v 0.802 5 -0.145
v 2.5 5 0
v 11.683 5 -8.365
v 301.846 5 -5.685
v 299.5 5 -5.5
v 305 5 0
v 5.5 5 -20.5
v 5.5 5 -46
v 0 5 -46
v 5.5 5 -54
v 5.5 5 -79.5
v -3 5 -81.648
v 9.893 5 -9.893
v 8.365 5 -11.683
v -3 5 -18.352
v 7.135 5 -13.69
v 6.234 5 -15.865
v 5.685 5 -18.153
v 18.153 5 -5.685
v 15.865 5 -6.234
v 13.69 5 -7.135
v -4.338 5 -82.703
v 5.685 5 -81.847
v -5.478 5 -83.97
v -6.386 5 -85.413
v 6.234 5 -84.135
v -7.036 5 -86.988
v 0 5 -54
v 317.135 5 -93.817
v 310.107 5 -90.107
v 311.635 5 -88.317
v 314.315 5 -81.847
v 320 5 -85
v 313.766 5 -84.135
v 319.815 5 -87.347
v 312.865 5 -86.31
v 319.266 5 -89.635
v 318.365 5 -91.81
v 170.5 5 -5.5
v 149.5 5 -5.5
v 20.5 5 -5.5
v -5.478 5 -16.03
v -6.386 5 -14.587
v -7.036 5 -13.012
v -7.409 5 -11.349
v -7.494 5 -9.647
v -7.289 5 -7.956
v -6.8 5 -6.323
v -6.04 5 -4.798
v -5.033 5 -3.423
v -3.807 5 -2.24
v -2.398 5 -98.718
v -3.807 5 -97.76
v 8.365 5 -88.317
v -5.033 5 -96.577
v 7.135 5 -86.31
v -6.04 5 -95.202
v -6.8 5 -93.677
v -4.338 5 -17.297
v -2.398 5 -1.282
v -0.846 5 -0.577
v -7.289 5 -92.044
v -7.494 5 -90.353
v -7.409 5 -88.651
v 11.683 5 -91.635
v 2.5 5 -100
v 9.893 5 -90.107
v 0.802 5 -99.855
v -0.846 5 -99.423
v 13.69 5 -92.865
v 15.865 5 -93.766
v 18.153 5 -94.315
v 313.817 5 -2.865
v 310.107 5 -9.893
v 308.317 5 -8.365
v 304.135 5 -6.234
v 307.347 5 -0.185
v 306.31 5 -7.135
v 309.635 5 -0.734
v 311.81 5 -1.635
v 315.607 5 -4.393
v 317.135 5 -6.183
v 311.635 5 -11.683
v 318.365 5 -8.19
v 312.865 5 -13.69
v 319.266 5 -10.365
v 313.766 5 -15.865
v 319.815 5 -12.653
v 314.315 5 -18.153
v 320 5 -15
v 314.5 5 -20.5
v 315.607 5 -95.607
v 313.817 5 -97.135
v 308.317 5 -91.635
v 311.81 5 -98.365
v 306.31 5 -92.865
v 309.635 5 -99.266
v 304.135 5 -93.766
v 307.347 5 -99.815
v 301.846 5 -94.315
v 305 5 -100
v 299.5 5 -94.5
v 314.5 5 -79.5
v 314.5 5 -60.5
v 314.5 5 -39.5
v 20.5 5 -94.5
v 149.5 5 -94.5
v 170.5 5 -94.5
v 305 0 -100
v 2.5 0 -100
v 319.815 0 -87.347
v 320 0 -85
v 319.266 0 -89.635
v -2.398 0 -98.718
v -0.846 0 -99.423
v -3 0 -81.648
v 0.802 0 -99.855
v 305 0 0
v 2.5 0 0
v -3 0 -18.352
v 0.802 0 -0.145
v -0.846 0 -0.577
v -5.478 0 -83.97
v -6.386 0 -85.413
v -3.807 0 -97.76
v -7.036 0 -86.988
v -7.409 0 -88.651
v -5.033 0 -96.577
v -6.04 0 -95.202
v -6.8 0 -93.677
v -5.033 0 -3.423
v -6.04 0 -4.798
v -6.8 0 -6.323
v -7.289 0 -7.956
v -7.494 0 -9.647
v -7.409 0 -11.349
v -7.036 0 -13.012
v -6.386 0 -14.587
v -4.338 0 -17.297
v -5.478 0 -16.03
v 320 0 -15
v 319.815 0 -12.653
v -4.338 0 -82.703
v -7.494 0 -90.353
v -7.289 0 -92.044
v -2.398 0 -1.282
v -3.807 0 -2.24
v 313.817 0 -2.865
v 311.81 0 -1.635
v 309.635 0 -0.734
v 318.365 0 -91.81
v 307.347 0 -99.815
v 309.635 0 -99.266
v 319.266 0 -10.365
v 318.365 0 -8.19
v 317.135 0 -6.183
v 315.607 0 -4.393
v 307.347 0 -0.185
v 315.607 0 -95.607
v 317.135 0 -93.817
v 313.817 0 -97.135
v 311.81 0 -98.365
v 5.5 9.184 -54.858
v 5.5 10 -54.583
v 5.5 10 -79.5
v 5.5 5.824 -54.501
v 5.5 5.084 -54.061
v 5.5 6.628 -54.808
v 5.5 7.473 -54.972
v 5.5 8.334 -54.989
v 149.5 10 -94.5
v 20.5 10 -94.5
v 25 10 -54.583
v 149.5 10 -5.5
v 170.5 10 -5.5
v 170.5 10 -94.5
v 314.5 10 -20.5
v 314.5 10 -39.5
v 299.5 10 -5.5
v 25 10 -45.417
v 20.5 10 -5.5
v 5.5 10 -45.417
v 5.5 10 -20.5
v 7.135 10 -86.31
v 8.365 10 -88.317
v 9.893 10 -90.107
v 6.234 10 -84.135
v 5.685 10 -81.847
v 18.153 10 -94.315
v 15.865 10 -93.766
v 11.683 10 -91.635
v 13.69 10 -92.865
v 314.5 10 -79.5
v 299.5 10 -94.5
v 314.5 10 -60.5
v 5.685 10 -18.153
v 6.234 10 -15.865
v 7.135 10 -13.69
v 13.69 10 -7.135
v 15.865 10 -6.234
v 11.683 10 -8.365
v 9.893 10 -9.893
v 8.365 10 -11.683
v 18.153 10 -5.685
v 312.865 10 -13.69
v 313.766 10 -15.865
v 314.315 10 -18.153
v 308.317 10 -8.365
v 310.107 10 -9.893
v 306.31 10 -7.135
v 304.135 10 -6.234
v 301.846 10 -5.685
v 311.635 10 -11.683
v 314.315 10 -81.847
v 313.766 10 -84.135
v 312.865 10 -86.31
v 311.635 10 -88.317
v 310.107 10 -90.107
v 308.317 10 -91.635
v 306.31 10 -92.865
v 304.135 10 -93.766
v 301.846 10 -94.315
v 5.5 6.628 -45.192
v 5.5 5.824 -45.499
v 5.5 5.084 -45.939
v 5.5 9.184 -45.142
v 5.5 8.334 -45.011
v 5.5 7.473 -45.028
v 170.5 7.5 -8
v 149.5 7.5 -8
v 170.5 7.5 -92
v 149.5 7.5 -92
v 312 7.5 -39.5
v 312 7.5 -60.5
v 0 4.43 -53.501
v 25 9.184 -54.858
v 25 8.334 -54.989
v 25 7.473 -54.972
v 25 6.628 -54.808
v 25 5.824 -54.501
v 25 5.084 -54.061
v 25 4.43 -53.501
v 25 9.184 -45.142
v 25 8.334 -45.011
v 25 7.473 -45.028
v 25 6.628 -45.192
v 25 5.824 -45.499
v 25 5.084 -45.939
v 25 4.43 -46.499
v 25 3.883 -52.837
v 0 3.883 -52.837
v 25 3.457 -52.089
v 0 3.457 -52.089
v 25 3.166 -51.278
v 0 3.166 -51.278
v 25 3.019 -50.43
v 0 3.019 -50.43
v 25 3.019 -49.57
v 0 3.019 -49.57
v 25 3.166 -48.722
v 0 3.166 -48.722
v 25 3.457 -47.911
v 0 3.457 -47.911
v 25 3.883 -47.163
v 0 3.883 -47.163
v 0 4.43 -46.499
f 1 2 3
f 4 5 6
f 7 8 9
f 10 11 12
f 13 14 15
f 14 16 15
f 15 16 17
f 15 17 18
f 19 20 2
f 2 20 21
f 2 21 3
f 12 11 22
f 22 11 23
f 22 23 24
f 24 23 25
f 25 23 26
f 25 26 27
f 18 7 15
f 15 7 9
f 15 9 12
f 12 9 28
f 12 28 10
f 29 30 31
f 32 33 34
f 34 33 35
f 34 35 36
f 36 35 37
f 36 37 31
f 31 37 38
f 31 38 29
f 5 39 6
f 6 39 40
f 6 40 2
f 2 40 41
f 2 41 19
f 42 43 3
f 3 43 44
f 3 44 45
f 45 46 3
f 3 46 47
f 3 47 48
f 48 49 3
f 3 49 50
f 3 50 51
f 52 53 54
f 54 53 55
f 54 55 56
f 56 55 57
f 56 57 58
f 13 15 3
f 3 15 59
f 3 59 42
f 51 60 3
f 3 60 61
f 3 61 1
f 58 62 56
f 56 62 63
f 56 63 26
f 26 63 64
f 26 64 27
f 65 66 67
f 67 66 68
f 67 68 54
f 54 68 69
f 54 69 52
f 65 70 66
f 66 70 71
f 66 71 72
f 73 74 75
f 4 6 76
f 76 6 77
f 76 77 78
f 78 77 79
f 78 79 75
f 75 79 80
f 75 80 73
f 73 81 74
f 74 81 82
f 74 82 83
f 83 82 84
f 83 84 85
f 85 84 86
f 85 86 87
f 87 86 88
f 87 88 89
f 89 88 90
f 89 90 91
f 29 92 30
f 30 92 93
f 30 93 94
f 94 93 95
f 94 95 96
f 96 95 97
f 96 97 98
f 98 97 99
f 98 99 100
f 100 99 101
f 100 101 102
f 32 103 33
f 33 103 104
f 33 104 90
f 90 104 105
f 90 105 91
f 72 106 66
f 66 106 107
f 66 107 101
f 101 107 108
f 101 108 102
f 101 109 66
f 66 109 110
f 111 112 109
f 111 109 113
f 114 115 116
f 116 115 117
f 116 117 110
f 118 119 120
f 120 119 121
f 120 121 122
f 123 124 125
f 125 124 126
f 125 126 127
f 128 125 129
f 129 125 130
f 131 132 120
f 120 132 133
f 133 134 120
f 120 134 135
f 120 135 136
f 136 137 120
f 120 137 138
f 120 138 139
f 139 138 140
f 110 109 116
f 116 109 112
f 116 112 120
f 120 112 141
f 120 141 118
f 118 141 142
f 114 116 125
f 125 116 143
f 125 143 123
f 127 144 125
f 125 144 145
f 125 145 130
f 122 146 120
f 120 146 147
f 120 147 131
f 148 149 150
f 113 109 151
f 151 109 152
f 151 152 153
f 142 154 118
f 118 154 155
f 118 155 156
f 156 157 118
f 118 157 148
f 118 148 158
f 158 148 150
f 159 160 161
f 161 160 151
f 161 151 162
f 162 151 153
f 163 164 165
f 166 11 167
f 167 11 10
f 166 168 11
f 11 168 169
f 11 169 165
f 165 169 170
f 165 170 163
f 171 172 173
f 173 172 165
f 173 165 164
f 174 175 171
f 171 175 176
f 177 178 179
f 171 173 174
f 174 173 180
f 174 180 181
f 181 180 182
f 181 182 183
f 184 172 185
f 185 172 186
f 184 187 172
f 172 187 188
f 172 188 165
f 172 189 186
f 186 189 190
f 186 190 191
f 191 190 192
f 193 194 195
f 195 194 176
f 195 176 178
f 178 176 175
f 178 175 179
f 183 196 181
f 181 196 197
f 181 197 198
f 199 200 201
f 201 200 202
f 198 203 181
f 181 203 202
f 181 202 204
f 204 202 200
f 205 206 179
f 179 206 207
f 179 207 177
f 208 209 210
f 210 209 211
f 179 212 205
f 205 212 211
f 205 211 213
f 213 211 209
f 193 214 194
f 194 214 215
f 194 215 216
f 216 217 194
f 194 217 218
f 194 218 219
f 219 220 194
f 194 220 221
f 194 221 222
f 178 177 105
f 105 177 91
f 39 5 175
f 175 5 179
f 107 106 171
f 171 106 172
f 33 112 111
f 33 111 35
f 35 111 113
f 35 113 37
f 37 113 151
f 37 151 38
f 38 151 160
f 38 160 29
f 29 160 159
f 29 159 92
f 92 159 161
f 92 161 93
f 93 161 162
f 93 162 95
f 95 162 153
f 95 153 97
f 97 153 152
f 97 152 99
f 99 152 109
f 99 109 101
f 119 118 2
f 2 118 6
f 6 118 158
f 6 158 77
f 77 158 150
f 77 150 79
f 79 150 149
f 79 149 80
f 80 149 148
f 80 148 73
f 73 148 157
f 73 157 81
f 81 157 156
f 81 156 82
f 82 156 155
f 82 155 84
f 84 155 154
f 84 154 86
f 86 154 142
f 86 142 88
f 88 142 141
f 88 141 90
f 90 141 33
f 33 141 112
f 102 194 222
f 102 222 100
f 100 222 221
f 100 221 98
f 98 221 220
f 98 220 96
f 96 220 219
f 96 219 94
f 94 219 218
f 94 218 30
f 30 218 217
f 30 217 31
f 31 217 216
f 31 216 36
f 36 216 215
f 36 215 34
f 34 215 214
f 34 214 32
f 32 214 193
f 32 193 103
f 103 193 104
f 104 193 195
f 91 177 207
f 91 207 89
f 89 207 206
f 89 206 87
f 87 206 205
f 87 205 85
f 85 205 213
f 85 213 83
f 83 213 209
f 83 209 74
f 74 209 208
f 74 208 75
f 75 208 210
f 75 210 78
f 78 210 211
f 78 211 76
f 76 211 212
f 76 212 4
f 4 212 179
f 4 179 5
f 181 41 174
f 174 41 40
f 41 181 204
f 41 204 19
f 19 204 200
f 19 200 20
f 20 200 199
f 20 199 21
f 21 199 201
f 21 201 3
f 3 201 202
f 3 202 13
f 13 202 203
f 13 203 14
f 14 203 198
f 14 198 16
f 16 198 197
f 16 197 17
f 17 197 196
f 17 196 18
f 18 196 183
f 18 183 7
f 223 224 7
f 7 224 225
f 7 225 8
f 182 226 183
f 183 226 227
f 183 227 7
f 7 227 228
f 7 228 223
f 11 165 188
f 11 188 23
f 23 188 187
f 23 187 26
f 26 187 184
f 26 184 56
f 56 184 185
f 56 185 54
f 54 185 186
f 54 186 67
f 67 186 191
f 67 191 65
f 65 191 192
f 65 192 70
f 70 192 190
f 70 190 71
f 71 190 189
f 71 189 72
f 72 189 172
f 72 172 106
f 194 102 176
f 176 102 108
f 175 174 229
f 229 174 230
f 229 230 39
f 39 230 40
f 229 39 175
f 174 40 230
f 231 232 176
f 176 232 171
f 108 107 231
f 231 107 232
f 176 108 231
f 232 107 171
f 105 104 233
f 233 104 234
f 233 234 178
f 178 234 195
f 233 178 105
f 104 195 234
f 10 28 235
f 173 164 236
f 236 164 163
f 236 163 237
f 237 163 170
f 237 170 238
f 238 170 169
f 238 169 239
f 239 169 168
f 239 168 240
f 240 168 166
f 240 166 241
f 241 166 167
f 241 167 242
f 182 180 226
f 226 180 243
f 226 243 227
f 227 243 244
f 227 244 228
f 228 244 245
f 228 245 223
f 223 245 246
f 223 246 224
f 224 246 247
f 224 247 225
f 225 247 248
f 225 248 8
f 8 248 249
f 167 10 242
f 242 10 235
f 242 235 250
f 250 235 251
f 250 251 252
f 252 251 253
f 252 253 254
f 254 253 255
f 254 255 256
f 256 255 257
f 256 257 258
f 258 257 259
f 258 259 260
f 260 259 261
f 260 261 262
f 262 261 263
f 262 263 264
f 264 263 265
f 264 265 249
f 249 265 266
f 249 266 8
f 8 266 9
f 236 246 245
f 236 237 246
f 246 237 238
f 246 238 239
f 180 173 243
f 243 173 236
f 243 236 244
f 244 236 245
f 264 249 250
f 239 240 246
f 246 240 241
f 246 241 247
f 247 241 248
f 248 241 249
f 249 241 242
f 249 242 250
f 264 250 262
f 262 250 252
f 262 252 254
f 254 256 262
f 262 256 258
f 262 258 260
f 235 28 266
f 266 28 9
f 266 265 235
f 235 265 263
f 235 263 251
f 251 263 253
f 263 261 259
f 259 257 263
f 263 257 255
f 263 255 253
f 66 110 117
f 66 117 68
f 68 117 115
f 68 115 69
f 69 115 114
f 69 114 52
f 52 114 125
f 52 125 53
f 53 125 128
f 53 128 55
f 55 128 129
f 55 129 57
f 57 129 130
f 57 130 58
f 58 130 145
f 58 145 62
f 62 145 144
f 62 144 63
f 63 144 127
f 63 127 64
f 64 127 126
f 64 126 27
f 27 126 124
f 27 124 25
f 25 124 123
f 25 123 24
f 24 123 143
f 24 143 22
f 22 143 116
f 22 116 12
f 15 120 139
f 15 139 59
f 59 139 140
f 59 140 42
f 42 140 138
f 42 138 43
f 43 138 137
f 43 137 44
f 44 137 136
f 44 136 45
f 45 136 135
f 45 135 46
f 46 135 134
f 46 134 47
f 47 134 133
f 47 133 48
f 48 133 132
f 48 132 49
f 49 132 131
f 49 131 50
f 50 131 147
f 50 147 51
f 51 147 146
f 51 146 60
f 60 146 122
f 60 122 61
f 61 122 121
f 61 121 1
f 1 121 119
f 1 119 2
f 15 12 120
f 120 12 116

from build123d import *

# Parameters (mm, degrees)
BOSS_EXTRUDE1_DEPTH     = 10
CUT_EXTRUDE7_START      = -5
CUT_EXTRUDE7_DEPTH      = 5
CUT_EXTRUDE8_DEPTH      = 10.5
CUT_EXTRUDE8_DEPTH_BACK = 10.5
CUT_EXTRUDE9_DEPTH      = 10.5
CUT_EXTRUDE9_DEPTH_BACK = 10.5
SKETCH14_R              = 5
CUT_EXTRUDE10_DEPTH     = 25
BOSS_EXTRUDE2_DEPTH     = 5
CUT_EXTRUDE12_DEPTH     = 5


with BuildPart() as part:
    # Sketch8 → Boss-Extrude1 (new body)
    with BuildSketch(Plane(origin=(0, 0, 0), x_dir=(1, 0, 0), z_dir=(0, 1, 0))):
        with BuildLine():
            Line((15, 0), (305, 0))
            ThreePointArc((305, 0), (315.606601718, 4.393398282), (320, 15))
            Line((320, 15), (320, 85))
            ThreePointArc((320, 85), (315.606601718, 95.606601718), (305, 100))
            Line((305, 100), (15, 100))
            ThreePointArc((15, 100), (4.393398282, 95.606601718), (0, 85))
            Line((0, 85), (0, 15))
            ThreePointArc((0, 15), (4.393398282, 4.393398282), (15, 0))
        make_face()
    extrude(amount=BOSS_EXTRUDE1_DEPTH)

    # Sketch9 → Cut-Extrude7 (cut)
    with BuildSketch(Plane(origin=(0, 10, 0), x_dir=(1, 0, 0), z_dir=(0, 1, 0)).offset(CUT_EXTRUDE7_START)):
        with BuildLine():
            Line((15, 0), (305, 0))
            ThreePointArc((305, 0), (315.606601718, 4.393398282), (320, 15))
            Line((320, 15), (320, 85))
            ThreePointArc((320, 85), (315.606601718, 95.606601718), (305, 100))
            Line((305, 100), (15, 100))
            ThreePointArc((15, 100), (4.393398282, 95.606601718), (0, 85))
            Line((0, 85), (0, 15))
            ThreePointArc((0, 15), (4.393398282, 4.393398282), (15, 0))
        make_face()
        with BuildLine():
            Line((20.5, 94.5), (299.5, 94.5))
            ThreePointArc((299.5, 94.5), (310.106601718, 90.106601718), (314.5, 79.5))
            Line((314.5, 79.5), (314.5, 20.5))
            ThreePointArc((314.5, 20.5), (310.106601718, 9.893398282), (299.5, 5.5))
            Line((299.5, 5.5), (20.5, 5.5))
            ThreePointArc((20.5, 5.5), (9.893398282, 9.893398282), (5.5, 20.5))
            Line((5.5, 20.5), (5.5, 79.5))
            ThreePointArc((5.5, 79.5), (9.893398282, 90.106601718), (20.5, 94.5))
        make_face(mode=Mode.SUBTRACT)
    extrude(amount=CUT_EXTRUDE7_DEPTH, mode=Mode.SUBTRACT)

    # Sketch11 → Cut-Extrude8 (cut, two sides: drawn at the far end of the back side and taken through both)
    with BuildSketch(Plane(origin=(160, 0, 0), x_dir=(0, 0, -1), z_dir=(1, 0, 0)).offset(-CUT_EXTRUDE8_DEPTH_BACK)):
        Polygon((5.5, 10), (5.5, 5), (8, 7.5), align=None)
        Polygon((94.5, 10), (94.5, 5), (92, 7.5), align=None)
    extrude(amount=CUT_EXTRUDE8_DEPTH + CUT_EXTRUDE8_DEPTH_BACK, mode=Mode.SUBTRACT)

    # Sketch13 → Cut-Extrude9 (cut, two sides: drawn at the far end of the back side and taken through both)
    with BuildSketch(Plane.XY.offset(-50).offset(-CUT_EXTRUDE9_DEPTH_BACK)):
        Polygon((314.5, 5), (314.5, 10), (312, 7.5), align=None)
    extrude(amount=CUT_EXTRUDE9_DEPTH + CUT_EXTRUDE9_DEPTH_BACK, mode=Mode.SUBTRACT)

    # Sketch14 → Cut-Extrude10 (cut)
    with BuildSketch(Plane(origin=(0, 0, 0), x_dir=(0, 0, -1), z_dir=(1, 0, 0))):
        with Locations((50, 8)):
            Circle(SKETCH14_R)
    extrude(amount=CUT_EXTRUDE10_DEPTH, mode=Mode.SUBTRACT)

    # Sketch15 → Boss-Extrude2 (add)
    with BuildSketch(Plane(origin=(0, 0, 0), x_dir=(1, 0, 0), z_dir=(0, 1, 0))):
        with BuildLine():
            Line((-7.5, 100), (-7.5, 0))
            Line((-7.5, 0), (15, 0))
            ThreePointArc((15, 0), (4.393398282, 4.393398282), (0, 15))
            Line((0, 15), (0, 85))
            ThreePointArc((0, 85), (4.393398282, 95.606601718), (15, 100))
            Line((15, 100), (-7.5, 100))
        make_face()
    extrude(amount=BOSS_EXTRUDE2_DEPTH)

    # Sketch16 → Cut-Extrude12 (cut)
    with BuildSketch(Plane(origin=(0, 0, 0), x_dir=(1, 0, 0), z_dir=(0, 1, 0))):
        with BuildLine():
            Line((2.5, 0), (-7.5, 0))
            Line((-7.5, 0), (-7.5, 10))
            ThreePointArc((-7.5, 10), (-4.571067812, 2.928932188), (2.5, 0))
        make_face()
        with BuildLine():
            ThreePointArc((-3, 81.648353456), (-6.303408431, 85.25658351), (-7.5, 90))
            Line((-7.5, 90), (-7.5, 10))
            ThreePointArc((-7.5, 10), (-6.303408431, 14.74341649), (-3, 18.351646544))
            Line((-3, 18.351646544), (-3, 50))
            Line((-3, 50), (-3, 81.648353456))
        make_face()
        with BuildLine():
            Line((-7.5, 90), (-7.5, 100))
            Line((-7.5, 100), (2.5, 100))
            ThreePointArc((2.5, 100), (-4.571067812, 97.071067812), (-7.5, 90))
        make_face()
    extrude(amount=CUT_EXTRUDE12_DEPTH, mode=Mode.SUBTRACT)


solid = part.part
